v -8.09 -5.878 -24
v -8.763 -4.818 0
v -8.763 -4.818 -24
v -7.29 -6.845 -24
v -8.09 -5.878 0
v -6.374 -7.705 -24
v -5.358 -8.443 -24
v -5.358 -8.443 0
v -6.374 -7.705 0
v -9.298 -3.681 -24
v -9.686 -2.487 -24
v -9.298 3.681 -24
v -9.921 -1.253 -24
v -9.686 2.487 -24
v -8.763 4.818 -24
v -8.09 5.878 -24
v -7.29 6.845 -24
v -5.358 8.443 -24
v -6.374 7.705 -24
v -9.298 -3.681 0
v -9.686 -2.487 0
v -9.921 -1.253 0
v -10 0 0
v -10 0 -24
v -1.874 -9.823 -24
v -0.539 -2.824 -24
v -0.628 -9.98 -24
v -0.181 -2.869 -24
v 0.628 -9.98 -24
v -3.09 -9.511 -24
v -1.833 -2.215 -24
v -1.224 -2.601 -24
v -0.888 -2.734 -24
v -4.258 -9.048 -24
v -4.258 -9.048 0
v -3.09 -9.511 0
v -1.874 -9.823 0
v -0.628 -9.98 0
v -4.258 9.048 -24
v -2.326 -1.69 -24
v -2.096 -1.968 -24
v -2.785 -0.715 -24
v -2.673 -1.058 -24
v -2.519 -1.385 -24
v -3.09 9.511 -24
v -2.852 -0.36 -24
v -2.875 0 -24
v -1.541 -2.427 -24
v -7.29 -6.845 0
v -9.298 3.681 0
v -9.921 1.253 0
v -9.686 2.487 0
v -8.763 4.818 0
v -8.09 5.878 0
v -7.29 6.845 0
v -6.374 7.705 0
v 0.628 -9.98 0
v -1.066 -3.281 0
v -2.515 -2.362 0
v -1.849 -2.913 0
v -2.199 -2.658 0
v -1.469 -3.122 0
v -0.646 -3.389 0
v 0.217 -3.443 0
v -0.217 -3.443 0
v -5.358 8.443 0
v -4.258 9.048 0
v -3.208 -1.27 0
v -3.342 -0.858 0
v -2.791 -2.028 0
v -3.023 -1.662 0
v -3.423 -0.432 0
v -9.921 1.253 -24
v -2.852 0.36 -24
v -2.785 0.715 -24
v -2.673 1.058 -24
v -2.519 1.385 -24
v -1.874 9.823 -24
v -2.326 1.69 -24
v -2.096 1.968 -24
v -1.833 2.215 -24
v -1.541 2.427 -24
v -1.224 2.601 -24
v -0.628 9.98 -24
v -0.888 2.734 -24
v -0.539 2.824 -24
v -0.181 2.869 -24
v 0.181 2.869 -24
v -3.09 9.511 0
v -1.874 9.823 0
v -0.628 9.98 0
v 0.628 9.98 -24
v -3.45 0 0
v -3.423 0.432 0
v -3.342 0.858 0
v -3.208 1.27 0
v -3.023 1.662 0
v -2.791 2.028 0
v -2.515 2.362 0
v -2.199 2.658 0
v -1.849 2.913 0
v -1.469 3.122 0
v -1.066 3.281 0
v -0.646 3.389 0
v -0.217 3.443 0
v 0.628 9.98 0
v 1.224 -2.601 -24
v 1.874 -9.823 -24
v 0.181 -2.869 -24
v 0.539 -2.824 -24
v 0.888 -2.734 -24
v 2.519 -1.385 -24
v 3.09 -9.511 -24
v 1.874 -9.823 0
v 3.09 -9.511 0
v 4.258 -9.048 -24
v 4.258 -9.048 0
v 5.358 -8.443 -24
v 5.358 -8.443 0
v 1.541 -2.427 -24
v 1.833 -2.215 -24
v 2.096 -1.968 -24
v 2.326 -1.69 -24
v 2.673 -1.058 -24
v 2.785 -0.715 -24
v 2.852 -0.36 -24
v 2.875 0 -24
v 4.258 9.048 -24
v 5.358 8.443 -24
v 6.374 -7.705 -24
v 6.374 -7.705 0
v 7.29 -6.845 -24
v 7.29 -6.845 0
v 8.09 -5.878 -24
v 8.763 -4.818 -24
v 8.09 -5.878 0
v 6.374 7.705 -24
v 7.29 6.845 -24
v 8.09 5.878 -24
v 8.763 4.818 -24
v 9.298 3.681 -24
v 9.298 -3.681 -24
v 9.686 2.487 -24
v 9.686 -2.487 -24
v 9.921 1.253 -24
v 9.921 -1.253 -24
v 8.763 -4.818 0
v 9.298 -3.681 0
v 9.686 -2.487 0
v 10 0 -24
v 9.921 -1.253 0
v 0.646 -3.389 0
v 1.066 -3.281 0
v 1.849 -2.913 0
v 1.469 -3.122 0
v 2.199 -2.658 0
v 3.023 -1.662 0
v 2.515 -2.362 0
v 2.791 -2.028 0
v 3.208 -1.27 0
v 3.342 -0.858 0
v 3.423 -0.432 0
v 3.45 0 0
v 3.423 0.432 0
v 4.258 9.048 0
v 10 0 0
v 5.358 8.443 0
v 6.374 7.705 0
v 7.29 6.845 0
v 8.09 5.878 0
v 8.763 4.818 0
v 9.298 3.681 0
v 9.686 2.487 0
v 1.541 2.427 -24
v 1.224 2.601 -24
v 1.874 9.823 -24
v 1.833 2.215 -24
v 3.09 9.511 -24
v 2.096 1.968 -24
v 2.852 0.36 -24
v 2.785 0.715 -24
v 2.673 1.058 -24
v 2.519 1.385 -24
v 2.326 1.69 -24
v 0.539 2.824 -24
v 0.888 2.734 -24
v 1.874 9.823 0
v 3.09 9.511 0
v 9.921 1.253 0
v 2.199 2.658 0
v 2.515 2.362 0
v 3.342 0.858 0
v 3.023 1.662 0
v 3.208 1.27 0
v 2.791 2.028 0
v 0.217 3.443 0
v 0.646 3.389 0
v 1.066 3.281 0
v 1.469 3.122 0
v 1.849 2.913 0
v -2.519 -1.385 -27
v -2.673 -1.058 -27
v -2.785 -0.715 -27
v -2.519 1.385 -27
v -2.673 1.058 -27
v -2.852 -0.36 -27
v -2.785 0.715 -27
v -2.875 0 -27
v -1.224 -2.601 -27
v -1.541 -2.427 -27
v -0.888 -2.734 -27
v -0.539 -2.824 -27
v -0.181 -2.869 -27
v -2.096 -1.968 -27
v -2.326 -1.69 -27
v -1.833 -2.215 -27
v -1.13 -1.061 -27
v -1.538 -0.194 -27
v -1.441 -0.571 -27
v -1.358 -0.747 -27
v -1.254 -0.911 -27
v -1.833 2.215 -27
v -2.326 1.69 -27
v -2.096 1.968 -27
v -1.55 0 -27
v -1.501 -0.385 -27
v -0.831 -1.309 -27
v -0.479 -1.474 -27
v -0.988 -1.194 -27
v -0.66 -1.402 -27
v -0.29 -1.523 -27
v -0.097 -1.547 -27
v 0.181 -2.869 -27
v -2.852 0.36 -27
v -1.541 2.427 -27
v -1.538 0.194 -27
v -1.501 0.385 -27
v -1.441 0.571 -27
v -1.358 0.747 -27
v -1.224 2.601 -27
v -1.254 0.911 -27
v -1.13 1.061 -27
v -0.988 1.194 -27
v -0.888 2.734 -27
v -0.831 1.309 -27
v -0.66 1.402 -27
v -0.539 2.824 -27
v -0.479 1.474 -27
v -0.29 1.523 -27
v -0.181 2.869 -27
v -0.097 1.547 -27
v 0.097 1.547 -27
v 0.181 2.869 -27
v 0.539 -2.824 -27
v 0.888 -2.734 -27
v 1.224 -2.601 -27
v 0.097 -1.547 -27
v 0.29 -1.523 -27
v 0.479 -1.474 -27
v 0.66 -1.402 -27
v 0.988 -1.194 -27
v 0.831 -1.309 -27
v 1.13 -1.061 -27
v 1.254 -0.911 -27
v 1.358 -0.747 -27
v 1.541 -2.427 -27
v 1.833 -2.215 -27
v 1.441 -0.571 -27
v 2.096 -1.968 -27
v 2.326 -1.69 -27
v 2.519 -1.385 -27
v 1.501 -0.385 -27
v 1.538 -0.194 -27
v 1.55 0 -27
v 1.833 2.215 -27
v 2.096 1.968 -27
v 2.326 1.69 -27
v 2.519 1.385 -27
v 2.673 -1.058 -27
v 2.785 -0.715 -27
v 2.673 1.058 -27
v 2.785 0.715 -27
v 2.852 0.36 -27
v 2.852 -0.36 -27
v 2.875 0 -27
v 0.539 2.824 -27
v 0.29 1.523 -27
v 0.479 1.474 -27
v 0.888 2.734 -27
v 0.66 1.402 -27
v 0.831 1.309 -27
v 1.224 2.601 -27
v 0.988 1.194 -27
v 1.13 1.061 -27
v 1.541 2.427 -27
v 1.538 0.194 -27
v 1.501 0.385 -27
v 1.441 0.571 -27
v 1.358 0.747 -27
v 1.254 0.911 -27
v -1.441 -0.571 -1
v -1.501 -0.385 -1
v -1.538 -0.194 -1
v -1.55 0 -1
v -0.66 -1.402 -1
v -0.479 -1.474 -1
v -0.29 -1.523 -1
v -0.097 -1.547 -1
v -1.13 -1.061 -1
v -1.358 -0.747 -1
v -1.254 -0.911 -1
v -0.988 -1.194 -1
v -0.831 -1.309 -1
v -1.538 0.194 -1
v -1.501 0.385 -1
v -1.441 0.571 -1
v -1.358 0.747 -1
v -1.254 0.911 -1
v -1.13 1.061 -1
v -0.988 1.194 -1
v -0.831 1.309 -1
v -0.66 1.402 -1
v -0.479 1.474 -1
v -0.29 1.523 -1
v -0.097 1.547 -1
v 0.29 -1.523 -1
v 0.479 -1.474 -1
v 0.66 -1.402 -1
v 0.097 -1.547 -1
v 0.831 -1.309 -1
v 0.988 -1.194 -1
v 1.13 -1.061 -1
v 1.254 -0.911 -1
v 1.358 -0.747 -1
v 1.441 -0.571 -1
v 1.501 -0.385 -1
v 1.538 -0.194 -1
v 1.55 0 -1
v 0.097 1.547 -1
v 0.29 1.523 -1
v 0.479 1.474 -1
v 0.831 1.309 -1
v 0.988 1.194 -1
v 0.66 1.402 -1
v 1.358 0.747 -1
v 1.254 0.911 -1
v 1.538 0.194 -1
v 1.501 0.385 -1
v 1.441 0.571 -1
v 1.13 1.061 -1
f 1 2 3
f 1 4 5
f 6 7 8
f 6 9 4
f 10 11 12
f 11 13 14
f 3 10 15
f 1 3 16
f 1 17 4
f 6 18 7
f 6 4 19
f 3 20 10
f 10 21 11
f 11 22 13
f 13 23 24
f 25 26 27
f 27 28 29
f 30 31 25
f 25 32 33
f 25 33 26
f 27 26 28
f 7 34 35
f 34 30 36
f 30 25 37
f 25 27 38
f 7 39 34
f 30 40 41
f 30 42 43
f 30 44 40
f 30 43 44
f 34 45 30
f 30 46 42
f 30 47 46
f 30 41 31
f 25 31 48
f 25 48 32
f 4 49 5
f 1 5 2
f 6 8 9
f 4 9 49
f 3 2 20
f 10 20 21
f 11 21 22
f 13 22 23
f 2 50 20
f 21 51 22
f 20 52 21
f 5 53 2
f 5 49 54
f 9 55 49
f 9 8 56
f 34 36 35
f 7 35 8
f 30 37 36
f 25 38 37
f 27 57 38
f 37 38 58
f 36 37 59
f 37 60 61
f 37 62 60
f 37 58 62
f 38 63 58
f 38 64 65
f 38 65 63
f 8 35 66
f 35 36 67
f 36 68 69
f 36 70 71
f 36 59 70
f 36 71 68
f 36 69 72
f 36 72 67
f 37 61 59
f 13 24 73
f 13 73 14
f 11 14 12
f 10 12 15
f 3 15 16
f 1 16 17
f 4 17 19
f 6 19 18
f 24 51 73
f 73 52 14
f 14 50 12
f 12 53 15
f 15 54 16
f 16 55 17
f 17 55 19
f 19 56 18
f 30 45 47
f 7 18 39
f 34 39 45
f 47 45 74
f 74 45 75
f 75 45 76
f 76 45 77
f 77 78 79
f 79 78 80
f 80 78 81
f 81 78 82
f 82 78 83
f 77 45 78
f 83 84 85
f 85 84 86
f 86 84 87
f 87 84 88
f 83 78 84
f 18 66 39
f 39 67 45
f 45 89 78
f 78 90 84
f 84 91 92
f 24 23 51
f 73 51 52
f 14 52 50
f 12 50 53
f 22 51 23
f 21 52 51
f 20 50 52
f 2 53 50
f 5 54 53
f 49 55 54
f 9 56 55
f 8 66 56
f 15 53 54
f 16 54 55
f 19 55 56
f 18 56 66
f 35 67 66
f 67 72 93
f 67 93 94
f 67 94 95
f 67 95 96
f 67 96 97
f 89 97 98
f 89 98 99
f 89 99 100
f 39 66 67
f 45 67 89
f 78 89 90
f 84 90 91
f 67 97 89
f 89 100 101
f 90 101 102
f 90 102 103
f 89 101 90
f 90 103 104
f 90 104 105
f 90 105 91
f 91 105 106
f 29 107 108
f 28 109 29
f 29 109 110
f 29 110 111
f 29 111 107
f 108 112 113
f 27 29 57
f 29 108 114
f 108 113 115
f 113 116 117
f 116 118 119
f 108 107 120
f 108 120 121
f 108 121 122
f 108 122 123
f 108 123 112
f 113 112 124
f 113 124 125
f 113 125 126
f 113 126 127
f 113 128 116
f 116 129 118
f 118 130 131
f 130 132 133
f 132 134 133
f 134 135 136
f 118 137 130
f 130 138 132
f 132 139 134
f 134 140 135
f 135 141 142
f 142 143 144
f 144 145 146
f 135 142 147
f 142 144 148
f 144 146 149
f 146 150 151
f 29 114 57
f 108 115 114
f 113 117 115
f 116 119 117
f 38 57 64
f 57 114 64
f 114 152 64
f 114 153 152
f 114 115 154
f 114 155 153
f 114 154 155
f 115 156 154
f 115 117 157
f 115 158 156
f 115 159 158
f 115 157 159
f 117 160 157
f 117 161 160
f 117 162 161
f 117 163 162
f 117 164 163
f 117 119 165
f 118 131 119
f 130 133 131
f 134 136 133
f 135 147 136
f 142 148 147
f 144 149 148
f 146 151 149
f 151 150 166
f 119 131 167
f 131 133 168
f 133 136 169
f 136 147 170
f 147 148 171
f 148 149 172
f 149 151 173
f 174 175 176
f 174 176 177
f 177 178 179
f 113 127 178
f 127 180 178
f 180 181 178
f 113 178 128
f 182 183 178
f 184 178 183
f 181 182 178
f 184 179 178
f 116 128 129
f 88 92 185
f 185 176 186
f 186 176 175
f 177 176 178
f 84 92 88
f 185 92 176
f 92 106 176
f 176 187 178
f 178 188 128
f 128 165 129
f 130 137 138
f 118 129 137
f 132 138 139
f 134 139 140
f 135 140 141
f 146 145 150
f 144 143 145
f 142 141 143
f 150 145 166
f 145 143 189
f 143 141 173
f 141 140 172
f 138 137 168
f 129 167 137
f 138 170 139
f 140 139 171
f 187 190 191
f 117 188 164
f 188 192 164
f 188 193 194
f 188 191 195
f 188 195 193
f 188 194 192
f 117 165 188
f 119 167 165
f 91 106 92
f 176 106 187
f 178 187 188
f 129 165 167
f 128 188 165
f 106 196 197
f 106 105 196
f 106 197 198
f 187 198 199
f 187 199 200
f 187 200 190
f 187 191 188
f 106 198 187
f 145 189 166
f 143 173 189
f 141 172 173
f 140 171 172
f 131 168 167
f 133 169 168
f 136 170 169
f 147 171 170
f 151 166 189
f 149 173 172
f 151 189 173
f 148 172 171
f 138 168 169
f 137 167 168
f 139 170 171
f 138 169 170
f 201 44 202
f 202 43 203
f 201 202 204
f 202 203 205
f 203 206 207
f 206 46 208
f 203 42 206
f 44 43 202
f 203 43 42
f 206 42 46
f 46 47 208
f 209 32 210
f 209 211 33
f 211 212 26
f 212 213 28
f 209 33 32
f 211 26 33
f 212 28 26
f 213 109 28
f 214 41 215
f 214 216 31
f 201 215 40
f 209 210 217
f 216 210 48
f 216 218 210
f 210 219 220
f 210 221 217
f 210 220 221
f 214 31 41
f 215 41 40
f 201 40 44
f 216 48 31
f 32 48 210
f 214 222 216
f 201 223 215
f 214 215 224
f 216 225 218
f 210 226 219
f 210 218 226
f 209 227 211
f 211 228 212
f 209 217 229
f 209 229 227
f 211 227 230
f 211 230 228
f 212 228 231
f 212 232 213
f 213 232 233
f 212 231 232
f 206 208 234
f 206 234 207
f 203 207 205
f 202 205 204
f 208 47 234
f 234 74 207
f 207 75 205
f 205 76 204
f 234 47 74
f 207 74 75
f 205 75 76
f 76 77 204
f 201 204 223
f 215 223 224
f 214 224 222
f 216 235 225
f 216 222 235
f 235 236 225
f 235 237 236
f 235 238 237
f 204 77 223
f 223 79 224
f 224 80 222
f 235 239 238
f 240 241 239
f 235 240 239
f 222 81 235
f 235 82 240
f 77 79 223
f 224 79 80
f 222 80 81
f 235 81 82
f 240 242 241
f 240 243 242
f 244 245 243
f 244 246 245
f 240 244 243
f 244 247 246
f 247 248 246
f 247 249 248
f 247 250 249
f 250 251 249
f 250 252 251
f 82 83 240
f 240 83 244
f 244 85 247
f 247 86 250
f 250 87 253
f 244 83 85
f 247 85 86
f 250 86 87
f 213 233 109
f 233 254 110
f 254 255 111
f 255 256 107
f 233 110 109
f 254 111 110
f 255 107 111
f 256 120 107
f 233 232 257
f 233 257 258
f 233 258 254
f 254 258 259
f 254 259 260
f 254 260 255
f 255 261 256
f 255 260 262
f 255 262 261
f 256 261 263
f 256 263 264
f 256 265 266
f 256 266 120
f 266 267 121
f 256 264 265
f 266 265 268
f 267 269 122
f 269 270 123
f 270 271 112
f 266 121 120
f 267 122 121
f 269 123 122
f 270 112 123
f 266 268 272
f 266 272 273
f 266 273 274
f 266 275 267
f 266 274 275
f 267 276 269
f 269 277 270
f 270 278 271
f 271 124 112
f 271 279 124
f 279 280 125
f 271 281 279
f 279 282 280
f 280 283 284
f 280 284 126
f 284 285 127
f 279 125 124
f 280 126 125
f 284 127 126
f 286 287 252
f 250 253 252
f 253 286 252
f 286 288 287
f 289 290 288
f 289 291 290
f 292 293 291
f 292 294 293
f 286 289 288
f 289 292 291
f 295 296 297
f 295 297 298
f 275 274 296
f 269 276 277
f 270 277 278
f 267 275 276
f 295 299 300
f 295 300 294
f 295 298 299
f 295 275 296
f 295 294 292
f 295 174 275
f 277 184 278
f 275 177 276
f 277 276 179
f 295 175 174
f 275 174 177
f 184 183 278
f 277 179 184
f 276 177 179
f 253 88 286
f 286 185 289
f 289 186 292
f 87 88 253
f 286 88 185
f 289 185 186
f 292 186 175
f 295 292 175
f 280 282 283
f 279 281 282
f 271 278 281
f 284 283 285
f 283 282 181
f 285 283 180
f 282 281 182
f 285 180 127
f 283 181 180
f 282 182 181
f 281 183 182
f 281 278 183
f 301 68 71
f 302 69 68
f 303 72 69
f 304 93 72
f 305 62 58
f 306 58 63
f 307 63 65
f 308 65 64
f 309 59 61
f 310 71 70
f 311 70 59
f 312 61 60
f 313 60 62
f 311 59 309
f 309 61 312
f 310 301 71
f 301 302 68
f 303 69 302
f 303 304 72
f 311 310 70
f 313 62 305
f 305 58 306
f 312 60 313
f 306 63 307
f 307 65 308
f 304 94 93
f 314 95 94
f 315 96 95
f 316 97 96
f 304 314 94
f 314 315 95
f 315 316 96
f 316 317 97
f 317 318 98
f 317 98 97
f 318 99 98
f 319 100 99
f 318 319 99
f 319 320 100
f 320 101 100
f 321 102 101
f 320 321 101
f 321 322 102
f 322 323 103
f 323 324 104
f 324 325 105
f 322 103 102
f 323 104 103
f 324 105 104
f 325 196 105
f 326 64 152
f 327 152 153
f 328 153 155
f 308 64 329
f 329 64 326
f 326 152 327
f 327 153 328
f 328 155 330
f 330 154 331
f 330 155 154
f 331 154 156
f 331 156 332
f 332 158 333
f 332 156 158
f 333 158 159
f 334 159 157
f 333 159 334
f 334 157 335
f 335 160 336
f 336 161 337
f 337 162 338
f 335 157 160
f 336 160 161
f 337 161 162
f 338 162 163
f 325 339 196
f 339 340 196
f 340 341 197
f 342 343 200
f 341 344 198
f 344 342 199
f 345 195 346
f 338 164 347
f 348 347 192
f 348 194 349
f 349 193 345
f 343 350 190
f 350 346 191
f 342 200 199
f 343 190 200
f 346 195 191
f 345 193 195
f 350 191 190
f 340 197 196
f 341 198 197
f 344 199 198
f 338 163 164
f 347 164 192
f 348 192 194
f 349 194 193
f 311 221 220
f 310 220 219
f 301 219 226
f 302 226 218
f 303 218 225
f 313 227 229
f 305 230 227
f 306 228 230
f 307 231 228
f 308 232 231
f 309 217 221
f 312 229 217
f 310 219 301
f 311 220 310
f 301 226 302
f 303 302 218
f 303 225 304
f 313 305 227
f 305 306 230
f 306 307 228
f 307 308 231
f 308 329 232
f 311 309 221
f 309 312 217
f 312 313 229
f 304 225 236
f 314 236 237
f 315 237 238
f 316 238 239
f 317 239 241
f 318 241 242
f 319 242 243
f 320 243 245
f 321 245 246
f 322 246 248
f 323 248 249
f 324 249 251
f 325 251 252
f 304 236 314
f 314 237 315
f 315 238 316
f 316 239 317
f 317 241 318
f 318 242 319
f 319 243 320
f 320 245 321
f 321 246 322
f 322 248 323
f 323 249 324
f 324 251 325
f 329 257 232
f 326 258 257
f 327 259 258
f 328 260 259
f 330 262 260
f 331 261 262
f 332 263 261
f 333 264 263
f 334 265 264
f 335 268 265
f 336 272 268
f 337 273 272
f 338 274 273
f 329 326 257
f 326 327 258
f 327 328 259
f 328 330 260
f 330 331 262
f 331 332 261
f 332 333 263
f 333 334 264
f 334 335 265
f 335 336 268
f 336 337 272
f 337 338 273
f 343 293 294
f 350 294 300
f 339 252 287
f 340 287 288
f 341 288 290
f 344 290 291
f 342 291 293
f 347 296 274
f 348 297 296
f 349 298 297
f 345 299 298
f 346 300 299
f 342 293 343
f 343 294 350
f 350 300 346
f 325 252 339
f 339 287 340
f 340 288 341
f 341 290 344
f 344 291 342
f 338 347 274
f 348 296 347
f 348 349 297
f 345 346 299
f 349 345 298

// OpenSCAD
$fn = 50;

difference() {
	union() {
		translate(v = [0, 0, -24.0]) {
			cylinder(h = 24, r = 10.0);
		}
		#translate(v = [0, 0, -27.0]) {
			cylinder(h = 27, r = 2.875);
		}
	}
	union() {
		translate(v = [0, 0, 0]) {
			rotate(a = [0, 0, 0]) {
				difference() {
					union() {
						translate(v = [0, 0, -27.0]) {
							cylinder(h = 27, r = 1.25);
						}
						translate(v = [0, 0, -1.0]) {
							cylinder(h = 1.0, r1 = 1.55, r2 = 3.45);
						}
						translate(v = [0, 0, -27.0]) {
							cylinder(h = 27, r = 1.55);
						}
						translate(v = [0, 0, -27.0]) {
							cylinder(h = 27, r = 1.25);
						}
					}
					union();
				}
			}
		}
	}
}
